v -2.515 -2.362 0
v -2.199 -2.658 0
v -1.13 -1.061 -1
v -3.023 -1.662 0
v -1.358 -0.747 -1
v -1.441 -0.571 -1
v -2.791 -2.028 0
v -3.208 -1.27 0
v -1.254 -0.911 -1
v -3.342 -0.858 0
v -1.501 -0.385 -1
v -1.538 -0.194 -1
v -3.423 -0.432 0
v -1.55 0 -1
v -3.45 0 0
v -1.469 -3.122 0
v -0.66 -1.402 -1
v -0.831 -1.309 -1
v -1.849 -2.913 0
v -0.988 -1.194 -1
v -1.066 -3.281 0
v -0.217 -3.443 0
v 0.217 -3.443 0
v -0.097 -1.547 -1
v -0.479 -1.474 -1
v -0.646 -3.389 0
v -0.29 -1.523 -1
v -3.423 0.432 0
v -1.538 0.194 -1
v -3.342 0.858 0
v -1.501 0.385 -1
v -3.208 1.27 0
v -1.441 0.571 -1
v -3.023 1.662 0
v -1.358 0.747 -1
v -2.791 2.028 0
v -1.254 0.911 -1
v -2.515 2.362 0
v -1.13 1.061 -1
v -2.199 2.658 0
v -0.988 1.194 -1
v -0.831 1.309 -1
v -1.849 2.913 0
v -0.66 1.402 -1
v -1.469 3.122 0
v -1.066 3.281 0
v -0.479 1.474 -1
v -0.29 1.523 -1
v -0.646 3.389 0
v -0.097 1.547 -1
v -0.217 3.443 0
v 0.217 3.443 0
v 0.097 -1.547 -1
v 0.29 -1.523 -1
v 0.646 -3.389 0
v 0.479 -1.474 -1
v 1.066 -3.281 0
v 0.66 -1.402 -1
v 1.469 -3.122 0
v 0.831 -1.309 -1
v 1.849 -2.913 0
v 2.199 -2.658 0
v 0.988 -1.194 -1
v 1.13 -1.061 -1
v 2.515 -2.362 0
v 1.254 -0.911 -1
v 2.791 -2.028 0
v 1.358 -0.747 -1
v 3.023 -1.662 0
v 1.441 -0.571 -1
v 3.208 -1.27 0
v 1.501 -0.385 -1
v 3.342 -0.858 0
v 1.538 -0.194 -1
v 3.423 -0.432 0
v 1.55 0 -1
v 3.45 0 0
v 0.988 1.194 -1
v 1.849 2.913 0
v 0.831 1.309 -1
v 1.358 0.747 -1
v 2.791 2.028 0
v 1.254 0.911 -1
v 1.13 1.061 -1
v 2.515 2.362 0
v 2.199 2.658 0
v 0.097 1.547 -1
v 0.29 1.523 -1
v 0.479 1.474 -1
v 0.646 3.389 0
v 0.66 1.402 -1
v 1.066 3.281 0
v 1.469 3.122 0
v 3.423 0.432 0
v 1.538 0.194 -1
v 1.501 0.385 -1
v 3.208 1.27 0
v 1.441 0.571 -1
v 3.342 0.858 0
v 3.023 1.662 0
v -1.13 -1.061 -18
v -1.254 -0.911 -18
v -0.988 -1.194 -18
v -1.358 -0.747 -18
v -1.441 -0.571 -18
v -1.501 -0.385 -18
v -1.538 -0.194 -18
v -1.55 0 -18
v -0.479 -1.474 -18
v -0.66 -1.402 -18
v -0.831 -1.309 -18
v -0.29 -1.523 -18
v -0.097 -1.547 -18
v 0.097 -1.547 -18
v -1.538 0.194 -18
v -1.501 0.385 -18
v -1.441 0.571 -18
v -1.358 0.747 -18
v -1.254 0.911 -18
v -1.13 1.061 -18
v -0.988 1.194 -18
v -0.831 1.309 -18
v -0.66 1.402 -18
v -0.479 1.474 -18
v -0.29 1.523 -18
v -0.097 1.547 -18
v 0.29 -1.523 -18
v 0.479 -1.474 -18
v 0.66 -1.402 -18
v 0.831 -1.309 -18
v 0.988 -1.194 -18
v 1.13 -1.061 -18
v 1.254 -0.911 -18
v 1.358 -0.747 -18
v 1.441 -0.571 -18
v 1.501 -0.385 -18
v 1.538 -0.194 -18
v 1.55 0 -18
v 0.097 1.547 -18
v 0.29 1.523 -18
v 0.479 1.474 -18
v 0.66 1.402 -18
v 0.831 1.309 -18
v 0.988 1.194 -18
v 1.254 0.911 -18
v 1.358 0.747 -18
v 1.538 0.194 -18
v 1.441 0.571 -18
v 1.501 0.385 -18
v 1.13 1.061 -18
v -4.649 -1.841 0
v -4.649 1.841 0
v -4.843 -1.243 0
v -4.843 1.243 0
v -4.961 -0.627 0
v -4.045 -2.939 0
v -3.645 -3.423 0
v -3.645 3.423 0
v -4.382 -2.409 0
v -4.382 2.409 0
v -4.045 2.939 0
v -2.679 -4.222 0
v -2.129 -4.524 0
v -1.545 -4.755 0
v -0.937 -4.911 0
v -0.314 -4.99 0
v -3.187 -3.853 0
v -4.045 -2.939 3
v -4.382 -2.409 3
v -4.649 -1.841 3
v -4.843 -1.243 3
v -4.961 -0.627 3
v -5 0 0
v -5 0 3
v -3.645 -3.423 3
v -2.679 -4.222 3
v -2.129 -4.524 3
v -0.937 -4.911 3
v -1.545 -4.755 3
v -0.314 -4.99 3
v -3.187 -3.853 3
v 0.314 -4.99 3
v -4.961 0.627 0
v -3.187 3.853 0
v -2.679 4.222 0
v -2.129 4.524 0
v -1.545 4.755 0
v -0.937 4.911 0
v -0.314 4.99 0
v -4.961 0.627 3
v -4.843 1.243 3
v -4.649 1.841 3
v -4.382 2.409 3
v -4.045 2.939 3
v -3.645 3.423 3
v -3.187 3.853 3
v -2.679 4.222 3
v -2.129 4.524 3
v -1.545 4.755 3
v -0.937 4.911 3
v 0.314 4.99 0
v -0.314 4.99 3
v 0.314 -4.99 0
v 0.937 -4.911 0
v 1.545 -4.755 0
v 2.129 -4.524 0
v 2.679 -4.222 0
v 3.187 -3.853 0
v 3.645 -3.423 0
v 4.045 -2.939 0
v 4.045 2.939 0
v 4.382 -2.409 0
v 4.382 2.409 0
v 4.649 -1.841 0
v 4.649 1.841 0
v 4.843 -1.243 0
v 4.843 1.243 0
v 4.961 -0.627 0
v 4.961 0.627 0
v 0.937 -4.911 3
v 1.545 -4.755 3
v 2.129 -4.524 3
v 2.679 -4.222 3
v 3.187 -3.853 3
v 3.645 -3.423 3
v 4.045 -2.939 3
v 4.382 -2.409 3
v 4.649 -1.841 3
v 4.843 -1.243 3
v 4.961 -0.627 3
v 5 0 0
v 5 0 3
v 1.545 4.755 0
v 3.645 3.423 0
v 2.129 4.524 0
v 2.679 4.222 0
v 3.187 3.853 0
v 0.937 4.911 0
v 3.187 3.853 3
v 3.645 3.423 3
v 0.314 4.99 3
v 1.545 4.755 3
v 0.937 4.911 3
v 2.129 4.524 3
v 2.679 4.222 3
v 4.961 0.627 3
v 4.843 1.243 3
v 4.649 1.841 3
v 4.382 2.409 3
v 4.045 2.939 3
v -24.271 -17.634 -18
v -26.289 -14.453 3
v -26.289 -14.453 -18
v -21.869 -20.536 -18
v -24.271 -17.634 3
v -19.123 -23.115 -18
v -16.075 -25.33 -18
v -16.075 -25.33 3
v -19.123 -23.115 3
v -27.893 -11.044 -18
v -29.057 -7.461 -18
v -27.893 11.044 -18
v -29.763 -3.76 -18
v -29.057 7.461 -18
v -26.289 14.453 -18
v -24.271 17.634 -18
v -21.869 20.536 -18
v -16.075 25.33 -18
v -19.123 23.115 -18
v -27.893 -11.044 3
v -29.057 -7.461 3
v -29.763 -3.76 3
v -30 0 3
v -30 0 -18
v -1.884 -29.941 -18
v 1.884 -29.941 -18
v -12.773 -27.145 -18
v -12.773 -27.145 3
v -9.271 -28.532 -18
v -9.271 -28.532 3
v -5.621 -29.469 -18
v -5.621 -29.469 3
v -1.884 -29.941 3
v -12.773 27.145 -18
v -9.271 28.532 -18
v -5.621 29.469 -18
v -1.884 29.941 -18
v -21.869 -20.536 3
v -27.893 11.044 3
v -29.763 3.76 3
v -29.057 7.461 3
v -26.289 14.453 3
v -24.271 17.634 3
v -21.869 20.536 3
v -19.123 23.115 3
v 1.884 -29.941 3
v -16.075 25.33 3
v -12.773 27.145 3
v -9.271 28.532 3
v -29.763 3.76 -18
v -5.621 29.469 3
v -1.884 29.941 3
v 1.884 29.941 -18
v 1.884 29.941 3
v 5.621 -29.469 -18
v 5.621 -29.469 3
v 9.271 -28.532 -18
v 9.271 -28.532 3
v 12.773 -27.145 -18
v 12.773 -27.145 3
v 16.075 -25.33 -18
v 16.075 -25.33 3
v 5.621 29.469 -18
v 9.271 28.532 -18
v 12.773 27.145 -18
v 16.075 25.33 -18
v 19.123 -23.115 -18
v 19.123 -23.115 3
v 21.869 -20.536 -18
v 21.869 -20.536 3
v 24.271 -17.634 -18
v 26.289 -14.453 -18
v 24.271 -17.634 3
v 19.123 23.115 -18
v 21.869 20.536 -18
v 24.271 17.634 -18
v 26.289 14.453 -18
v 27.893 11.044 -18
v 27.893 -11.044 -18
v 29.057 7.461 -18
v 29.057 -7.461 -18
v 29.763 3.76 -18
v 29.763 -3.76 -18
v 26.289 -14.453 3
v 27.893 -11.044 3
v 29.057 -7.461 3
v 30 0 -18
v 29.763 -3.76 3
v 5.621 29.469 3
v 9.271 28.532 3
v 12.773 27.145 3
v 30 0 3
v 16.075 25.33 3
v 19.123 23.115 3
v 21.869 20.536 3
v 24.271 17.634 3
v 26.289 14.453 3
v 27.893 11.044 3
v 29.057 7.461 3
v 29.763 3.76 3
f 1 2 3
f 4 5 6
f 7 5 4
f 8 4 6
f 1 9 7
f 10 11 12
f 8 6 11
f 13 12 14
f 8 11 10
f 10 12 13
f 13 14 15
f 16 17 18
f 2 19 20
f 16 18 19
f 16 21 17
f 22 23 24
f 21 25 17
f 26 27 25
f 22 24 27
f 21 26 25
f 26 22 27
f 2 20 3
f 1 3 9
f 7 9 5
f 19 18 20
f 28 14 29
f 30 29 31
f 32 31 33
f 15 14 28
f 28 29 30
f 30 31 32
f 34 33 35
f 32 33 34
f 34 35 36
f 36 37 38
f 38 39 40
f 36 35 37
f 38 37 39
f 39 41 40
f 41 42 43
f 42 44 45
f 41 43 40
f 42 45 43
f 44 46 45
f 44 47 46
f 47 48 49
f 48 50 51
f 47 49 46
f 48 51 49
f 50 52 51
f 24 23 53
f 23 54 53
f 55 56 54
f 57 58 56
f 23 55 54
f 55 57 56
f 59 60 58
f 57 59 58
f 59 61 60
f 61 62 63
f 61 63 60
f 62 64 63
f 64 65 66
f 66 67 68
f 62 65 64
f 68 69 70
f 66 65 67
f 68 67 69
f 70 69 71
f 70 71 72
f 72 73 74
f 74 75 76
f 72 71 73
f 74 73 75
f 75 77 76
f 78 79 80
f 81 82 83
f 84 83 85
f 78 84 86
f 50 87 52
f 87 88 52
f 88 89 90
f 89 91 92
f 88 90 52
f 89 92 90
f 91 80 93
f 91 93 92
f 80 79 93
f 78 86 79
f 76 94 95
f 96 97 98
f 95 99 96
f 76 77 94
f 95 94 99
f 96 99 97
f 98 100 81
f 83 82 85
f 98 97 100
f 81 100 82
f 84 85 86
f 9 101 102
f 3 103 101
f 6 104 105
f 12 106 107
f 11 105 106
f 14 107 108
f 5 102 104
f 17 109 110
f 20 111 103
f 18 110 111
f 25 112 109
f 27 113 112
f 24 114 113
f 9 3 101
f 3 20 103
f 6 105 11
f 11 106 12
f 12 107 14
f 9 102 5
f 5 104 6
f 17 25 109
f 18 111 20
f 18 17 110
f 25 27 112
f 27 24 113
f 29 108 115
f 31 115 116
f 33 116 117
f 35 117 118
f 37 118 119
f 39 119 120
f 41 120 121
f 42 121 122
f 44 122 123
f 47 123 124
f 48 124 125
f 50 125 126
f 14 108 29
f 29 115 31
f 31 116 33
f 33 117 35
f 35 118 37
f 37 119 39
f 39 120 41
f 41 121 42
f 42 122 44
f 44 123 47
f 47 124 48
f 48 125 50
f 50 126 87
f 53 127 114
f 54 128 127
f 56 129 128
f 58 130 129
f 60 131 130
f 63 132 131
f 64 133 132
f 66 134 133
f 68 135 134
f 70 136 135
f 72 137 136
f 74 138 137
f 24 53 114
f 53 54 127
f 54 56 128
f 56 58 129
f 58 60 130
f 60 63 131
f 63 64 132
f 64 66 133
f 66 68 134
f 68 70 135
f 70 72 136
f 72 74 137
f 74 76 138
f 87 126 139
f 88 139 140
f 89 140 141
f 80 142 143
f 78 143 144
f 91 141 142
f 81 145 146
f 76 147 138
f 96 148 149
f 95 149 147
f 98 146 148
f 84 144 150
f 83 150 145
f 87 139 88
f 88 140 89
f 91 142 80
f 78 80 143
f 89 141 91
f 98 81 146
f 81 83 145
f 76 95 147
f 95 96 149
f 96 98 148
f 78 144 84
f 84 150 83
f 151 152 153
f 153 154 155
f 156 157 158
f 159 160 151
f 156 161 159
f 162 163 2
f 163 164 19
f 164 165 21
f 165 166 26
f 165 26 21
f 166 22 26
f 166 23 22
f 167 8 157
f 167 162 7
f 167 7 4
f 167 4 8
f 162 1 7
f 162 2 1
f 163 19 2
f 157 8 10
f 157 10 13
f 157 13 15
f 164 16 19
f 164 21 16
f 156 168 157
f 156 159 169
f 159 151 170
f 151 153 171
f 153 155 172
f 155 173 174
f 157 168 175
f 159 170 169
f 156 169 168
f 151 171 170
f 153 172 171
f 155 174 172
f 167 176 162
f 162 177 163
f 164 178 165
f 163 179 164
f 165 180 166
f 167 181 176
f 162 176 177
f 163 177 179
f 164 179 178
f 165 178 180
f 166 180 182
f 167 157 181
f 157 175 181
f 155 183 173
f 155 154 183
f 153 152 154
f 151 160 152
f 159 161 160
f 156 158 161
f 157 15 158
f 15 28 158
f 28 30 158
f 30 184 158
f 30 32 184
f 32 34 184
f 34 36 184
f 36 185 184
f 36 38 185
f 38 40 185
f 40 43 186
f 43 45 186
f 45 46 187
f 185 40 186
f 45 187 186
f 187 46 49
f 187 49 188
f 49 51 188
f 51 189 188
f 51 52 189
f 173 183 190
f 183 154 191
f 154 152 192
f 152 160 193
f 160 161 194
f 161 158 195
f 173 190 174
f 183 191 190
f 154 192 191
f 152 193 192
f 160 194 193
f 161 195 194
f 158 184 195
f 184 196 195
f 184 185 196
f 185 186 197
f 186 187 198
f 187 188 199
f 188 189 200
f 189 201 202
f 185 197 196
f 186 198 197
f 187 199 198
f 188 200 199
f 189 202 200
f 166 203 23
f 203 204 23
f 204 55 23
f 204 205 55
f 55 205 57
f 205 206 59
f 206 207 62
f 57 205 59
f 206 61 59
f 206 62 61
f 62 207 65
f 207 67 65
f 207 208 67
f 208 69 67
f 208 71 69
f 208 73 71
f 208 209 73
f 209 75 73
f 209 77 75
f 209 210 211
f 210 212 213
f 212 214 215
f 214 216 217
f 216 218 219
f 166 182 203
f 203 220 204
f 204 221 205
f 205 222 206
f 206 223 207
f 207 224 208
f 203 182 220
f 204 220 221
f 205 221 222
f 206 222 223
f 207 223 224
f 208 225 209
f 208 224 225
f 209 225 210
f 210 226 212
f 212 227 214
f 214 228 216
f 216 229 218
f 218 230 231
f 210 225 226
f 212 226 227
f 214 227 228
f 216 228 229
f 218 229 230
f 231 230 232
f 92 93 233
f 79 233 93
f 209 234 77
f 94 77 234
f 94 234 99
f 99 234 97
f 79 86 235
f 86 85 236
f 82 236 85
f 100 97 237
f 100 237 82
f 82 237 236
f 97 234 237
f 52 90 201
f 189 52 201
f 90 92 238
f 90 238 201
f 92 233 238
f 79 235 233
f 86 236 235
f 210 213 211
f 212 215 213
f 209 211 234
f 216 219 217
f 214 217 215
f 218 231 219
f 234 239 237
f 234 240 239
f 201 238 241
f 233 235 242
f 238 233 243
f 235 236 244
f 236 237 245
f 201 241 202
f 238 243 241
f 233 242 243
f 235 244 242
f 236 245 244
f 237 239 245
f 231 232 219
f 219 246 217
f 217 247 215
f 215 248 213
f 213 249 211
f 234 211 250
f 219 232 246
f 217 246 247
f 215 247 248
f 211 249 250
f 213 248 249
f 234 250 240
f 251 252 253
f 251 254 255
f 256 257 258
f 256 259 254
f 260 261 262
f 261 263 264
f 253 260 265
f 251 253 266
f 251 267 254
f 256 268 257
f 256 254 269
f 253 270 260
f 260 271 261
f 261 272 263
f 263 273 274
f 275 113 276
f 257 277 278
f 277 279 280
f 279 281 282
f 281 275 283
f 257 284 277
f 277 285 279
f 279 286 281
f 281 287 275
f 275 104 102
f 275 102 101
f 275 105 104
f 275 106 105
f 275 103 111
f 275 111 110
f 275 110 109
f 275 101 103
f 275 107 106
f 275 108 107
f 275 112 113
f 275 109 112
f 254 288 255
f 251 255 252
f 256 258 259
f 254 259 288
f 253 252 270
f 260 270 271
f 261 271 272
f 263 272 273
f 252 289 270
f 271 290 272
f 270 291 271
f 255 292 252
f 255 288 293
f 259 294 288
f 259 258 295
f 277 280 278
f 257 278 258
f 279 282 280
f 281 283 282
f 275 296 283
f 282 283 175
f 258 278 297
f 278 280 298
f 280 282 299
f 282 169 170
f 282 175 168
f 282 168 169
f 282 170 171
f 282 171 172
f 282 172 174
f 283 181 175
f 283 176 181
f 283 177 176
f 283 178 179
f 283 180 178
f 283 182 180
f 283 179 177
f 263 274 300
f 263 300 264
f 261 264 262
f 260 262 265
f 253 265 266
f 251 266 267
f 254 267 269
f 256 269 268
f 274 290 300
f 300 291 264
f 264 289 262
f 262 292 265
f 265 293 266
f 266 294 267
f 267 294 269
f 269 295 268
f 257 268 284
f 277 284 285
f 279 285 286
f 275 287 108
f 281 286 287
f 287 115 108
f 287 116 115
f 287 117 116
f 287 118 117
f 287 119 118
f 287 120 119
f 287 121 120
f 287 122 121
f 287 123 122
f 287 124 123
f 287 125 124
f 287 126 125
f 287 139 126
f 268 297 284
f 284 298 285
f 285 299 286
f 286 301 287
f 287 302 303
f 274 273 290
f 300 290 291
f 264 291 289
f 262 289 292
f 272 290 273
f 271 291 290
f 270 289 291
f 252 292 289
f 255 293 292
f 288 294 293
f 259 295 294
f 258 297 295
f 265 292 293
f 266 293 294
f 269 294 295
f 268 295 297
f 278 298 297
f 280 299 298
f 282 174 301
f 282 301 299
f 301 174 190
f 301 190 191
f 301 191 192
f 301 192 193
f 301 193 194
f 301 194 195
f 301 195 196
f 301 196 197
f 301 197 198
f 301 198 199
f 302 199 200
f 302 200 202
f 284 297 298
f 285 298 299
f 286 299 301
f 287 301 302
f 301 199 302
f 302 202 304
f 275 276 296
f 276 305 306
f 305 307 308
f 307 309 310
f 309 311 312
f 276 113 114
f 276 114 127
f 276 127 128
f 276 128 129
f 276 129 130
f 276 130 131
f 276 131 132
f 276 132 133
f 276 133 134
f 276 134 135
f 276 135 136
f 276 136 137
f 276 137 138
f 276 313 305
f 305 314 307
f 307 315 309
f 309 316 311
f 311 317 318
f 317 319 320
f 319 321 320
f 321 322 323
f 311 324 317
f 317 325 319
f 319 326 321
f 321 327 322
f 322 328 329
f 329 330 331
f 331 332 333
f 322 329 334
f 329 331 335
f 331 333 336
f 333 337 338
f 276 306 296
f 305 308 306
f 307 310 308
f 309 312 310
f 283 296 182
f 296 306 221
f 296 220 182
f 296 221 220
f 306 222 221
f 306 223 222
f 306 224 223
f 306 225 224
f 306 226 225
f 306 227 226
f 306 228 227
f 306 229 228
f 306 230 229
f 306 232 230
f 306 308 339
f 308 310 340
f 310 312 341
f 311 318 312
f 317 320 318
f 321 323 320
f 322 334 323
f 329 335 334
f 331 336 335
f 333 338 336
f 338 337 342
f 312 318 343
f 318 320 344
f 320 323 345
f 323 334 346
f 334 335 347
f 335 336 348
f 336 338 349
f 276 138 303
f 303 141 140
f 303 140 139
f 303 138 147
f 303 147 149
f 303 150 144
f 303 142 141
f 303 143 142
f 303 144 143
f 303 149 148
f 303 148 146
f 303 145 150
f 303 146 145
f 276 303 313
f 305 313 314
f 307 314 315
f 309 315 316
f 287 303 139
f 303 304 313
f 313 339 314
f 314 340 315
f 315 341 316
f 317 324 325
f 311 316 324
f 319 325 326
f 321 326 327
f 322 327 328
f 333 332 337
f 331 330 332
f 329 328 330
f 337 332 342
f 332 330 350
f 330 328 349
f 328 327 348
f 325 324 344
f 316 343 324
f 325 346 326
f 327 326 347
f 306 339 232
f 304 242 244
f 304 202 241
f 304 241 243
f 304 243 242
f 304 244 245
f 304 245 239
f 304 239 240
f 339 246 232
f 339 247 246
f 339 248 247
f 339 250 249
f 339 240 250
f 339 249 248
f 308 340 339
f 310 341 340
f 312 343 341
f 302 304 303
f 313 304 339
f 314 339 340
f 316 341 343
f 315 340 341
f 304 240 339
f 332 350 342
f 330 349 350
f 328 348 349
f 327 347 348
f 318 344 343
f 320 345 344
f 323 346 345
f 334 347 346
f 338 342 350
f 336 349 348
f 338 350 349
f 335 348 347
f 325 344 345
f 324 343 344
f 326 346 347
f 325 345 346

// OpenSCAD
$fn = 50;

difference() {
	union() {
		translate(v = [0, 0, -18.0]) {
			cylinder(h = 21, r = 30.0);
		}
	}
	union() {
		translate(v = [0, 0, 0]) {
			rotate(a = [0, 0, 0]) {
				difference() {
					union() {
						translate(v = [0, 0, -21.0]) {
							cylinder(h = 21, r = 1.25);
						}
						translate(v = [0, 0, -1.0]) {
							cylinder(h = 1.0, r1 = 1.55, r2 = 3.45);
						}
						translate(v = [0, 0, -21.0]) {
							cylinder(h = 21, r = 1.55);
						}
						translate(v = [0, 0, -21.0]) {
							cylinder(h = 21, r = 1.25);
						}
					}
					union();
				}
			}
		}
		#cylinder(h = 3, r = 5.0);
	}
}
